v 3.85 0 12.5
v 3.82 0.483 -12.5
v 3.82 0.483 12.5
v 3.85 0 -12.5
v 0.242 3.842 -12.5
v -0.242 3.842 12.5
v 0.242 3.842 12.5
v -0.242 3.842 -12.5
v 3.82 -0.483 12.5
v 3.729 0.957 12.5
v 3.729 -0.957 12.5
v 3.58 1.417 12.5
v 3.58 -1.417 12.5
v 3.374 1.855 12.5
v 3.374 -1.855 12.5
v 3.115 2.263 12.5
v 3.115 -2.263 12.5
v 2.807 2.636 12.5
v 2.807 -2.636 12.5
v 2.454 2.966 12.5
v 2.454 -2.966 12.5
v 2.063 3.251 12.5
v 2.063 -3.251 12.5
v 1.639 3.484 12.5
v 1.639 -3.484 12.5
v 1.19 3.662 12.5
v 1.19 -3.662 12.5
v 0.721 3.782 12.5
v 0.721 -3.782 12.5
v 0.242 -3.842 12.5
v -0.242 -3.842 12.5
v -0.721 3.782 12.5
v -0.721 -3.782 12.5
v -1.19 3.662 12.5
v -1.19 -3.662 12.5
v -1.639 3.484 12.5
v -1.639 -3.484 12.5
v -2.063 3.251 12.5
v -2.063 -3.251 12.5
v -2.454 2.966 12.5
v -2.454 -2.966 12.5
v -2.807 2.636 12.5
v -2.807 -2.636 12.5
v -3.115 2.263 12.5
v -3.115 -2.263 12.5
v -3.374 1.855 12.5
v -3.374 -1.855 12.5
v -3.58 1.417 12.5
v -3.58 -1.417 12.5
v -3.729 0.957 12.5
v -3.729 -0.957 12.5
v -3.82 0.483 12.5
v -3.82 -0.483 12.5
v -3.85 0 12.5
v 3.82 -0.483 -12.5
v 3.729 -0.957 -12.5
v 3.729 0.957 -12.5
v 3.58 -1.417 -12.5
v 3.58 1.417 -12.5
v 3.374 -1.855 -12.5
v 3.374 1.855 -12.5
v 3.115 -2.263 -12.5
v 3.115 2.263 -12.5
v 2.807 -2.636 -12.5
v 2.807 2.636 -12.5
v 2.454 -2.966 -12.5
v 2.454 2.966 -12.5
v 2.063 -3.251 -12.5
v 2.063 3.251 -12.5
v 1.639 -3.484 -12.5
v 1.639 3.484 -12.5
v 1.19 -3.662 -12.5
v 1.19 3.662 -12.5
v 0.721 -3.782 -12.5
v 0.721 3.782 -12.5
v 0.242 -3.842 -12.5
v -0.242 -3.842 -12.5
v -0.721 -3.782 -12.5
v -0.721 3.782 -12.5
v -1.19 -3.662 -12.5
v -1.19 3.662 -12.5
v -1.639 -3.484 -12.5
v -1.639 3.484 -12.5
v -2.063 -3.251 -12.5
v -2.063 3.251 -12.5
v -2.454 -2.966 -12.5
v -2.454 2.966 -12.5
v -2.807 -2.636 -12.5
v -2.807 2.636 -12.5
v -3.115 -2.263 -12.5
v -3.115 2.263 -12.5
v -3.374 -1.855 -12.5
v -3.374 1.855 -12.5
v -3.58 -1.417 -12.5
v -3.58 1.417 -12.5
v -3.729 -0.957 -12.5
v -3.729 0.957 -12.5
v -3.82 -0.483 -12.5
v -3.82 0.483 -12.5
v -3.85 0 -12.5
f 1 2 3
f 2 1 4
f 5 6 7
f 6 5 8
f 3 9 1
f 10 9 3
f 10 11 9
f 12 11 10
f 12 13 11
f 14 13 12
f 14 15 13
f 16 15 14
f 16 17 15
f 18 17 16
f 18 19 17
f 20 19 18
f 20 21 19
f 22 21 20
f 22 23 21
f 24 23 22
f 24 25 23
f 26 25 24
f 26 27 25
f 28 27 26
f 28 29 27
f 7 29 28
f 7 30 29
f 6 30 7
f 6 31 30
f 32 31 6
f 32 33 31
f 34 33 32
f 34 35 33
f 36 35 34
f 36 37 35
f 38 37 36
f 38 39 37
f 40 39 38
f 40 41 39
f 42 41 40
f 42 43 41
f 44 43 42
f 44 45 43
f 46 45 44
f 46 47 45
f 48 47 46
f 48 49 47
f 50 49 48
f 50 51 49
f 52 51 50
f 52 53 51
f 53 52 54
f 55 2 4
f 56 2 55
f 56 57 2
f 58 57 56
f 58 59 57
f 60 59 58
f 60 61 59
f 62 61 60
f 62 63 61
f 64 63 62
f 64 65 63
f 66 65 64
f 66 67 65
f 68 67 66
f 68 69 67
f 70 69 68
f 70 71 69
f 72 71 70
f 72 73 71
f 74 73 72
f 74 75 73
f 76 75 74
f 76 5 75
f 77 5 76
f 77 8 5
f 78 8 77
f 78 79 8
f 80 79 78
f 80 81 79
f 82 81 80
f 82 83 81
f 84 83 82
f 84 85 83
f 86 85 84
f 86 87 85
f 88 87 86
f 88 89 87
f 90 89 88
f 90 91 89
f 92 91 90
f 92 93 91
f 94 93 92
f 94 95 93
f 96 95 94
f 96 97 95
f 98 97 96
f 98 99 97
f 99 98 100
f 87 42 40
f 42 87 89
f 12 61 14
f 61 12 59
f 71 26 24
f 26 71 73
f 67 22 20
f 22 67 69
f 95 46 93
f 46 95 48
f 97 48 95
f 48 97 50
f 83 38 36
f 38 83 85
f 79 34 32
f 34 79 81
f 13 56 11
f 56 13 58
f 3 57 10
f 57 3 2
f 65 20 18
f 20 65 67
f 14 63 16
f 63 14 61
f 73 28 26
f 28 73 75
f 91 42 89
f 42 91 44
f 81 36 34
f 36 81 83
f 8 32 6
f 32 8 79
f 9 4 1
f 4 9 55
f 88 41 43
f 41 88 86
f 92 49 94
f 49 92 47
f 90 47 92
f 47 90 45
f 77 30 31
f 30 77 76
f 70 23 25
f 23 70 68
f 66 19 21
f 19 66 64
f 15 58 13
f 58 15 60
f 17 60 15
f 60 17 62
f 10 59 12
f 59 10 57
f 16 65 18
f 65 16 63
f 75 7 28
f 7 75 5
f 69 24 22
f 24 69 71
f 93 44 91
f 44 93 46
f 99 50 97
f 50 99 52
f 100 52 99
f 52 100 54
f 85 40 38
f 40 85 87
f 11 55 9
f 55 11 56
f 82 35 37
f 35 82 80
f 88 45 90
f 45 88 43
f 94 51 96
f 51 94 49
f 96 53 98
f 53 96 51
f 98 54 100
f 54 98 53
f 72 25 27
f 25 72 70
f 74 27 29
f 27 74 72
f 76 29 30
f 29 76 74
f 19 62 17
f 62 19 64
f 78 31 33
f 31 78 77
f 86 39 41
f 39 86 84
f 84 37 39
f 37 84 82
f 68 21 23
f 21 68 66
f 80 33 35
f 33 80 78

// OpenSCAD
$fn = 50;


difference() {
	union() {
		translate(v = [0, 0, -12.5000000000]) {
			cylinder(h = 25, r = 3.8500000000);
		}
	}
	union() {
		translate(v = [0, 0, -100.0000000000]) {
			cylinder(h = 200, r = 0);
		}
	}
}
